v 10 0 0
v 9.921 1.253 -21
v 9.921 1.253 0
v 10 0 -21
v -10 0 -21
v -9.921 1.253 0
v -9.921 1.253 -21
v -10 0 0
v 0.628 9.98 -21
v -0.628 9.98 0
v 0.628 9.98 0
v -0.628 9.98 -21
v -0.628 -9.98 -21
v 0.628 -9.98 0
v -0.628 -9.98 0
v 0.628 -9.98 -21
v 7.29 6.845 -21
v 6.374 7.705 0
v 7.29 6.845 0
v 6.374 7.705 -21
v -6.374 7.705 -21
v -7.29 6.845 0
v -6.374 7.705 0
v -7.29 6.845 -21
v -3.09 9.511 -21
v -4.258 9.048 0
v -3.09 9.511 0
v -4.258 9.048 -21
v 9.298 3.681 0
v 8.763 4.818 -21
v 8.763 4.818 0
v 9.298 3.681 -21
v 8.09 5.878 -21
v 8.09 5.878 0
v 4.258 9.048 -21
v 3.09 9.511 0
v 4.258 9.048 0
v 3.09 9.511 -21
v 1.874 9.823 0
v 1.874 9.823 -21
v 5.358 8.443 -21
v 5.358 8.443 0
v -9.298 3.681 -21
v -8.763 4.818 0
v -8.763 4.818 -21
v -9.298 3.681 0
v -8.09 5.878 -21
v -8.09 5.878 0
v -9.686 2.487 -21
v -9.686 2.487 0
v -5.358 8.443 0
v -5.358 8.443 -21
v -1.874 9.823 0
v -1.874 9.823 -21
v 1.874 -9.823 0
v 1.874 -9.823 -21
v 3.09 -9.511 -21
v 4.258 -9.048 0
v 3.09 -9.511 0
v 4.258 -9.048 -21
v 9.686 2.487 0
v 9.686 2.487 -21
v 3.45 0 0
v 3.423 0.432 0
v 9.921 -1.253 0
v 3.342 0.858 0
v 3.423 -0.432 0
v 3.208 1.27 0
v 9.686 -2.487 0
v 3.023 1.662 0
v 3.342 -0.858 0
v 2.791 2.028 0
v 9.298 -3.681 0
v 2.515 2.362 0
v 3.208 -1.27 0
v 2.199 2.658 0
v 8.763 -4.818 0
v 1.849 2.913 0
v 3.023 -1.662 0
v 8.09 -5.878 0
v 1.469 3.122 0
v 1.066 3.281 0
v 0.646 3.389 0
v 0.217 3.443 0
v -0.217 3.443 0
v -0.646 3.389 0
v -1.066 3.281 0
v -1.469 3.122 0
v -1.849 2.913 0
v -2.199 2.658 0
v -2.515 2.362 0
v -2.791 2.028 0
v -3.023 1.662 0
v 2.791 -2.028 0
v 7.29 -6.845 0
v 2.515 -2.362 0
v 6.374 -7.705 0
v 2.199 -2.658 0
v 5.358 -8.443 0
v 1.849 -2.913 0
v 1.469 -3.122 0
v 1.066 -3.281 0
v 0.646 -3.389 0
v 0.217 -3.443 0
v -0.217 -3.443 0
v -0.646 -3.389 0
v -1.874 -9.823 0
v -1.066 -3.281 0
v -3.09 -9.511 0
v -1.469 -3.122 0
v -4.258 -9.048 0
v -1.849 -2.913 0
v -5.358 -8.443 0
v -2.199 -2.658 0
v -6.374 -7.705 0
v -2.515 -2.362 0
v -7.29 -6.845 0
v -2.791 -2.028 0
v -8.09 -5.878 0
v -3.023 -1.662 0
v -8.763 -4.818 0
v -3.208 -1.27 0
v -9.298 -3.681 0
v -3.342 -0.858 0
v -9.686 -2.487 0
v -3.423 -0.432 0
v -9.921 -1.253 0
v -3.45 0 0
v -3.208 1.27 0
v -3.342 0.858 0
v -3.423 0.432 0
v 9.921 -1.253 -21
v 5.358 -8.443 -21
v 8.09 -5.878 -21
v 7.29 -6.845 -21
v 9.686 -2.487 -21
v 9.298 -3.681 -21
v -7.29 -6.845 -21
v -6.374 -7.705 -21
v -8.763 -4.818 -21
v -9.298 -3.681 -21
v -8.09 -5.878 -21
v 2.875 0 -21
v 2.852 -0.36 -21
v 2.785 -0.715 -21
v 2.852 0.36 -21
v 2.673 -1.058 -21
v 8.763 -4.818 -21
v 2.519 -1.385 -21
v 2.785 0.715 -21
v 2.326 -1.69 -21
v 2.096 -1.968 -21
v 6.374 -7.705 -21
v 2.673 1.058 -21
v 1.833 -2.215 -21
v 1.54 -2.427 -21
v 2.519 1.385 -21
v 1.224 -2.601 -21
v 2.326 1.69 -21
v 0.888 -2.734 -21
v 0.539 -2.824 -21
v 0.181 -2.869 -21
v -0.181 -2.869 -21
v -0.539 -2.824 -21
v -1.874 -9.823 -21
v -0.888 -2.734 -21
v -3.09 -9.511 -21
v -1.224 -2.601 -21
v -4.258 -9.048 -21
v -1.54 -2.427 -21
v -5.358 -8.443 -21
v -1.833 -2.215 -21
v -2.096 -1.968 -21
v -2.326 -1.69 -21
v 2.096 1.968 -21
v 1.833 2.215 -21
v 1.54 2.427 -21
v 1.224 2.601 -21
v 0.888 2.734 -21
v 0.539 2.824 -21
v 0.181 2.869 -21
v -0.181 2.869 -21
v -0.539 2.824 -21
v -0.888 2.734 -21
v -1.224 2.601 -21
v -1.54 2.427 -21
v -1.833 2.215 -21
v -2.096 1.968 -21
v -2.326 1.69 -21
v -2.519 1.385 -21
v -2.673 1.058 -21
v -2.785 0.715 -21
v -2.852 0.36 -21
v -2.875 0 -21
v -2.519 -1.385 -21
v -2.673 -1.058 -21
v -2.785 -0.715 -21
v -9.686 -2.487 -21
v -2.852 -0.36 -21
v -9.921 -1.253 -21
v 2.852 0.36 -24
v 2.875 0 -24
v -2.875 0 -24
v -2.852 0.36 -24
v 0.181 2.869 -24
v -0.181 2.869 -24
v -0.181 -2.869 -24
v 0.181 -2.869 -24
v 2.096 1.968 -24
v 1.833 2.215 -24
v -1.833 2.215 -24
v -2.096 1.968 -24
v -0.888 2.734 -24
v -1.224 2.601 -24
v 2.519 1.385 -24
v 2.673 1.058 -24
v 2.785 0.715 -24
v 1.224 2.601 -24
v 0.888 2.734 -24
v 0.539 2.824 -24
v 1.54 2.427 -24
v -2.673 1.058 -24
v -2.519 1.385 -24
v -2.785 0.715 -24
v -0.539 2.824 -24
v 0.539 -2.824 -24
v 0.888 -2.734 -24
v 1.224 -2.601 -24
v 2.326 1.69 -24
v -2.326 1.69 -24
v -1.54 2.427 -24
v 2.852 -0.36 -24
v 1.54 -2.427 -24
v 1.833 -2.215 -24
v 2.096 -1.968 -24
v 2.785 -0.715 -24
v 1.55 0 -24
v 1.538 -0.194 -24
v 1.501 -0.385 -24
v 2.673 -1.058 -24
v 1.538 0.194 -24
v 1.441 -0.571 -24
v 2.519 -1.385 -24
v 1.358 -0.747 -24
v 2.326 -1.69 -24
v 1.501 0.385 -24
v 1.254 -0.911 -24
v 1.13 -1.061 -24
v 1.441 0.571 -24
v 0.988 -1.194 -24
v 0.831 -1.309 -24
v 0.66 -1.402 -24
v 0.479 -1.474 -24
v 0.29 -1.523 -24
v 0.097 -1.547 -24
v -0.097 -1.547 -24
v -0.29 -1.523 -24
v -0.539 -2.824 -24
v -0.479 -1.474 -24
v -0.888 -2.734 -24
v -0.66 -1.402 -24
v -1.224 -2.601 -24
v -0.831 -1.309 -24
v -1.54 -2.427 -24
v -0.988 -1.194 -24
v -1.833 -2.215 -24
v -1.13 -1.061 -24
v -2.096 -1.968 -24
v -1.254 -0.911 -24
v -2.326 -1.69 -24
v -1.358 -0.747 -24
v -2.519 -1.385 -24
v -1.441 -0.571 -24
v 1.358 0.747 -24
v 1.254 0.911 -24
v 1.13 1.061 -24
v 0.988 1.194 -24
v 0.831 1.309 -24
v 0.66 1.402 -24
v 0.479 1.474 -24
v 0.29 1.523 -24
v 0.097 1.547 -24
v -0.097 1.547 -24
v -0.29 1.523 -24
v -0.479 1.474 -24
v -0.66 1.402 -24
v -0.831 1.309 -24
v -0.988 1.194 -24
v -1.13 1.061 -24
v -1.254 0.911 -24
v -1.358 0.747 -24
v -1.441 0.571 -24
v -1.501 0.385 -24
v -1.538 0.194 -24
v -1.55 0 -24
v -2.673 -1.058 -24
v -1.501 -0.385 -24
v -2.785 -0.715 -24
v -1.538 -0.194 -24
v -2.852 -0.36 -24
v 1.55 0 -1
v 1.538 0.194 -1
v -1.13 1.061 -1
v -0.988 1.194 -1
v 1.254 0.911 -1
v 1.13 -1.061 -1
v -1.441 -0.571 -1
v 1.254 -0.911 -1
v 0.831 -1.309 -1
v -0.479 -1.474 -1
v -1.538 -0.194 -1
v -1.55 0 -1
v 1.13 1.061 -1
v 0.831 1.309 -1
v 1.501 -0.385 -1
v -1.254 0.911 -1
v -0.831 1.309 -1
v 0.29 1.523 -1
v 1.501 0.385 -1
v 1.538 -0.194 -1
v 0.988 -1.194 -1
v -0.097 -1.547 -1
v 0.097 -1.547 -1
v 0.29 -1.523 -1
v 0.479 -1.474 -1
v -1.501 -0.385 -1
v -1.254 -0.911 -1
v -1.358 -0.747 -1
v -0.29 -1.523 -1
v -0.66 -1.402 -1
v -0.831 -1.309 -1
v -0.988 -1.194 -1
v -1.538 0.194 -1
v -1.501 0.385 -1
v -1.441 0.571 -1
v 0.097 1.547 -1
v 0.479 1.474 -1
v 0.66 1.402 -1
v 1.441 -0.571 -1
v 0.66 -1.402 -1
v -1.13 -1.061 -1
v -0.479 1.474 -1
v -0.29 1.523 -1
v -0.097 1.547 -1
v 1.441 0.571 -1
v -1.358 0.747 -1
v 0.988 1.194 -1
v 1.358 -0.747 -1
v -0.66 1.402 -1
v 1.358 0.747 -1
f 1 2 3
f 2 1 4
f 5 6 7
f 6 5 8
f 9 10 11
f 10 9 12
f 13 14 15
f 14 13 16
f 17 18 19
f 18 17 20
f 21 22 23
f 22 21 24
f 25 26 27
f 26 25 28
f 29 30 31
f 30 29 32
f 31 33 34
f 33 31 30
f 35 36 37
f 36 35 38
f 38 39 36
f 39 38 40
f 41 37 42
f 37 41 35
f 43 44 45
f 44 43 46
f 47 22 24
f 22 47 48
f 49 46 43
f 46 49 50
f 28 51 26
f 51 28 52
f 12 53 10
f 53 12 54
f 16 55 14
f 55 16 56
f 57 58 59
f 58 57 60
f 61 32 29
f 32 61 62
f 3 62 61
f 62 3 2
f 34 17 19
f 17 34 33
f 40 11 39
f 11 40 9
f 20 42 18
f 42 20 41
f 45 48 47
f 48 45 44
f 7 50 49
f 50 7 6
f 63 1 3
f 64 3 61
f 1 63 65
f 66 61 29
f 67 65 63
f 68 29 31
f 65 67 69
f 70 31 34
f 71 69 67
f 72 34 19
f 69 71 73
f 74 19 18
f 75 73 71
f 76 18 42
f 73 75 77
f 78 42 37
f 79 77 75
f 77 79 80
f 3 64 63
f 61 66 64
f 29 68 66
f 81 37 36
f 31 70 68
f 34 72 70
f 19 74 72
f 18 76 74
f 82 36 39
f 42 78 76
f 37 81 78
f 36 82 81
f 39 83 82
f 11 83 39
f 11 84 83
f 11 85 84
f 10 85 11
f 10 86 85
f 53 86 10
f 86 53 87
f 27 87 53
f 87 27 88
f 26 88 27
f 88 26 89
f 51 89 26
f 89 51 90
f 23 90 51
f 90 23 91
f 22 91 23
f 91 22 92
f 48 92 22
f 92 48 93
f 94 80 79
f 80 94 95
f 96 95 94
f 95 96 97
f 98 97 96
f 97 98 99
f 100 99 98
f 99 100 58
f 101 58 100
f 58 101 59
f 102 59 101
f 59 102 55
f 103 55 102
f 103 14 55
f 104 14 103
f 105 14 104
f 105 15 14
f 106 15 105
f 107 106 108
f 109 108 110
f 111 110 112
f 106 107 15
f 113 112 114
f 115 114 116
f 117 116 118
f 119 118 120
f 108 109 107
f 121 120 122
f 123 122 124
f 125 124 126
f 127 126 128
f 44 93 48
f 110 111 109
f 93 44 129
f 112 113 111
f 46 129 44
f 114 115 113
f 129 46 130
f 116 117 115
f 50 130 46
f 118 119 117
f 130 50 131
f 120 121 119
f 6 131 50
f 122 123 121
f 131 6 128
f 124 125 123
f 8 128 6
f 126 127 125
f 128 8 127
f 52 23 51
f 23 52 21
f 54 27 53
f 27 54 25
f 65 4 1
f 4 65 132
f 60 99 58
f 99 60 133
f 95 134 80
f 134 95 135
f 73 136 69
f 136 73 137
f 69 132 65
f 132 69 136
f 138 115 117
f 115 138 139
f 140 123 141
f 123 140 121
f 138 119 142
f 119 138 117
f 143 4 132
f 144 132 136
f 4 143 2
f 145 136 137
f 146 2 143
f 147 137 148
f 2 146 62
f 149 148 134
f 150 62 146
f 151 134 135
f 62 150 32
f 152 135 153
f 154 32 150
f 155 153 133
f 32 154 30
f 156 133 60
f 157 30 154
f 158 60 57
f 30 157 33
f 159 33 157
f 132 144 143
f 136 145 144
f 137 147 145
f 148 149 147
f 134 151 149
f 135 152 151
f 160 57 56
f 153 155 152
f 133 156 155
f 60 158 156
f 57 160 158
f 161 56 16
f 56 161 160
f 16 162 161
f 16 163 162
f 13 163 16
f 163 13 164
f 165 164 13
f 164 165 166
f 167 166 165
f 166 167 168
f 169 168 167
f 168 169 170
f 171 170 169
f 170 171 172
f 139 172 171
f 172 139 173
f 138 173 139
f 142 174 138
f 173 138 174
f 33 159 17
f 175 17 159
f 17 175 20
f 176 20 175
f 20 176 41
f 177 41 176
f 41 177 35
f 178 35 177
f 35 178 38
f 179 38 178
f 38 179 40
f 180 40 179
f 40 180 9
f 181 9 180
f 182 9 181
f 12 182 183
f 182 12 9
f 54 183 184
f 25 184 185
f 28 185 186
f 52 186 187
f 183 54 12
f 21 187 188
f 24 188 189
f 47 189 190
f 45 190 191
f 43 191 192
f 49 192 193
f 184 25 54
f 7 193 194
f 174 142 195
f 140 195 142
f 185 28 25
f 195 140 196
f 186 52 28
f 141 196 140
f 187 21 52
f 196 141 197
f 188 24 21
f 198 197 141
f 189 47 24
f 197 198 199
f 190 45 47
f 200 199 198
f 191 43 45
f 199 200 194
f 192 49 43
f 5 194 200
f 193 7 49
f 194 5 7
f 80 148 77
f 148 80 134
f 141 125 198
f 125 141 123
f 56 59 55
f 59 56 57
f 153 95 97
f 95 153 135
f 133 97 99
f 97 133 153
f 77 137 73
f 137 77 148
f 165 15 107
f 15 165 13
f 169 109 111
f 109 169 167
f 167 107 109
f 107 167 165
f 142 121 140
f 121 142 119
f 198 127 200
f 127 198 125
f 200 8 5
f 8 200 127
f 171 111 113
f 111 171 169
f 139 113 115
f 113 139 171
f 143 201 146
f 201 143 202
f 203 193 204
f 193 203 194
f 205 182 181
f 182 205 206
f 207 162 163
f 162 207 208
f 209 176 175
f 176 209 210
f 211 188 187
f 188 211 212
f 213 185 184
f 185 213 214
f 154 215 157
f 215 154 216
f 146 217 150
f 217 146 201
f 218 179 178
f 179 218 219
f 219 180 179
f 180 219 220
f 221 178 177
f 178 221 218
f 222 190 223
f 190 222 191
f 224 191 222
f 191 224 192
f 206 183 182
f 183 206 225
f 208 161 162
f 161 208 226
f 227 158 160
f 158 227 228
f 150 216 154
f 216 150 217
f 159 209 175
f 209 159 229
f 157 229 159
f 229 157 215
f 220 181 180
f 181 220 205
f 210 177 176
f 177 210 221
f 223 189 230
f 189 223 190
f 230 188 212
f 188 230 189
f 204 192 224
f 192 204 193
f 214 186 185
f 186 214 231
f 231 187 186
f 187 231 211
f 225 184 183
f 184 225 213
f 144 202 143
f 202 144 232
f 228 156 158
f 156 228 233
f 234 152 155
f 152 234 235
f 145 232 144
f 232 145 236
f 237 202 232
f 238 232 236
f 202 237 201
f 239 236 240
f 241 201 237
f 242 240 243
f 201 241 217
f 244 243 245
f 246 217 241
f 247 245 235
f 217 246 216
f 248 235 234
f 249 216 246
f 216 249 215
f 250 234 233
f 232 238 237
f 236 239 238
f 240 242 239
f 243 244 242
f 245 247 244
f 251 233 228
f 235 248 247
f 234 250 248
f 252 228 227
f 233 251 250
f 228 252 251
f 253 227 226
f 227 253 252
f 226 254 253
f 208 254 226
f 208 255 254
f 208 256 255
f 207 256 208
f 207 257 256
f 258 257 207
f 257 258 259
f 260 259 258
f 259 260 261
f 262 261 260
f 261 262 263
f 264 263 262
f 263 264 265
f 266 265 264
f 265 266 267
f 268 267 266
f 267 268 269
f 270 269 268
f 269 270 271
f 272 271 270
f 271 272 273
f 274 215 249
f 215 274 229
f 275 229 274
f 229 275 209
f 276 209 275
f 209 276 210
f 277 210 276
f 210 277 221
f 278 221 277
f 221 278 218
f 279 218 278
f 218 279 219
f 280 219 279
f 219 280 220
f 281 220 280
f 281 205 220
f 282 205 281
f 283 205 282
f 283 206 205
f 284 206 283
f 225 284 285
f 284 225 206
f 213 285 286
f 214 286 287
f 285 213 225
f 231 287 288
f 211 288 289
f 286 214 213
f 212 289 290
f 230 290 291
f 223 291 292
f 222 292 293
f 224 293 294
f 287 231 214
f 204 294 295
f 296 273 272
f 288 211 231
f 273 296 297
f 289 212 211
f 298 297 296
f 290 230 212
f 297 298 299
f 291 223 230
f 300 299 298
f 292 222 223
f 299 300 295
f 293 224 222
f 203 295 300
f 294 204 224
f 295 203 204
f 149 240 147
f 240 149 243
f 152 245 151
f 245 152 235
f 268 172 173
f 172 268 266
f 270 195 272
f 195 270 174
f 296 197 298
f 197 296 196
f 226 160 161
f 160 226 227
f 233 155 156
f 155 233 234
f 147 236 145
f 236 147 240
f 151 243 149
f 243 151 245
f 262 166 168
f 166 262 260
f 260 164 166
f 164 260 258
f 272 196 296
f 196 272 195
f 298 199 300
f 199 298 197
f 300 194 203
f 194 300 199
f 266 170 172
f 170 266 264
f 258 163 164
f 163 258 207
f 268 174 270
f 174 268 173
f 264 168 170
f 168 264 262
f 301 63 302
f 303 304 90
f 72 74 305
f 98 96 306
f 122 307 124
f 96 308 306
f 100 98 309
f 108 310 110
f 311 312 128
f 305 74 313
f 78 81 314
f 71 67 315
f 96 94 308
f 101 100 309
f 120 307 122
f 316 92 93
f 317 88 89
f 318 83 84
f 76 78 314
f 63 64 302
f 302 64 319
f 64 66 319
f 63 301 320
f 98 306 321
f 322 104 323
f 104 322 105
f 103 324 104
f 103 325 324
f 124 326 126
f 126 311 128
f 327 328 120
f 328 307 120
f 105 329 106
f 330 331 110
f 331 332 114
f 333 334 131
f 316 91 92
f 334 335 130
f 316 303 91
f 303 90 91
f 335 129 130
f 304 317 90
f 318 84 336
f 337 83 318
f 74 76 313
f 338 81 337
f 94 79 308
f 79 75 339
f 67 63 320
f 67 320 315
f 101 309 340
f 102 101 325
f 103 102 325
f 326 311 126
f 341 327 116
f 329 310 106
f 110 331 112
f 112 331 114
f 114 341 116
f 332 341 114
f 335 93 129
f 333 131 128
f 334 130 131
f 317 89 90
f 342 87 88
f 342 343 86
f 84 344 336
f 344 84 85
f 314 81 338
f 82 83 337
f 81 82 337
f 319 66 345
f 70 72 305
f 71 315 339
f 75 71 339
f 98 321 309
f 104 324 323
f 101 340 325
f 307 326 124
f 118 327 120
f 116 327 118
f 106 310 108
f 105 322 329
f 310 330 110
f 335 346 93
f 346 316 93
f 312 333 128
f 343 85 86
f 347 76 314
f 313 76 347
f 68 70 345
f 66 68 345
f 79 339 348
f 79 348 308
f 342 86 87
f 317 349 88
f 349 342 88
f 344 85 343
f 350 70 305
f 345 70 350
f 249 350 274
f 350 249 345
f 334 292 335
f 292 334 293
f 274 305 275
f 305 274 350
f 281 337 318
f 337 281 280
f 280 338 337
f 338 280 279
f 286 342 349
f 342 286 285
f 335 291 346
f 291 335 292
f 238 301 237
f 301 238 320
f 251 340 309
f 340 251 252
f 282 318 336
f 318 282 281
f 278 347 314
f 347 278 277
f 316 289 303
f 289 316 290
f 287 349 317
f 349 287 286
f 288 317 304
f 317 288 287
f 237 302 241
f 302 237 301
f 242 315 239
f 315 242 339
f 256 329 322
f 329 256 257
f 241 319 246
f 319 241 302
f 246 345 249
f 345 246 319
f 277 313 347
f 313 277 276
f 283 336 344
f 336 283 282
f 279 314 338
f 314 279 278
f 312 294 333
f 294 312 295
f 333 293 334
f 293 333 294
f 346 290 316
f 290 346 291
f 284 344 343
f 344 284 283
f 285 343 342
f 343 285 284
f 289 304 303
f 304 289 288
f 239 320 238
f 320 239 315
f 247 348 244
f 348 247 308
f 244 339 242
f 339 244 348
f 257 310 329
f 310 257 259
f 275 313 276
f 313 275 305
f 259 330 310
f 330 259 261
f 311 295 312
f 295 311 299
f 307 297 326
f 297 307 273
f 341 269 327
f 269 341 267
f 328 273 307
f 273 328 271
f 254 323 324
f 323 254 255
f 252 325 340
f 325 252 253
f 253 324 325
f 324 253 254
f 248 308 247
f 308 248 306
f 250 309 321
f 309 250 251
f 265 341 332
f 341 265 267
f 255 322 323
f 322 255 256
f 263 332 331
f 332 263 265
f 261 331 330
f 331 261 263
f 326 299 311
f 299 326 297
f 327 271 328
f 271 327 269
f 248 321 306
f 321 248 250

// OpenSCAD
$fn = 50;


difference() {
	union() {
		translate(v = [0, 0, -21.0000000000]) {
			cylinder(h = 21, r = 10.0000000000);
		}
		#translate(v = [0, 0, -24.0000000000]) {
			cylinder(h = 24, r = 2.8750000000);
		}
	}
	union() {
		translate(v = [0, 0, 0]) {
			rotate(a = [0, 0, 0]) {
				difference() {
					union() {
						translate(v = [0, 0, -24.0000000000]) {
							cylinder(h = 24, r = 1.2500000000);
						}
						translate(v = [0, 0, -1.0000000000]) {
							cylinder(h = 1.0000000000, r1 = 1.5500000000, r2 = 3.4500000000);
						}
						translate(v = [0, 0, -24.0000000000]) {
							cylinder(h = 24, r = 1.5500000000);
						}
						translate(v = [0, 0, -24.0000000000]) {
							cylinder(h = 24, r = 1.2500000000);
						}
					}
					union();
				}
			}
		}
	}
}
